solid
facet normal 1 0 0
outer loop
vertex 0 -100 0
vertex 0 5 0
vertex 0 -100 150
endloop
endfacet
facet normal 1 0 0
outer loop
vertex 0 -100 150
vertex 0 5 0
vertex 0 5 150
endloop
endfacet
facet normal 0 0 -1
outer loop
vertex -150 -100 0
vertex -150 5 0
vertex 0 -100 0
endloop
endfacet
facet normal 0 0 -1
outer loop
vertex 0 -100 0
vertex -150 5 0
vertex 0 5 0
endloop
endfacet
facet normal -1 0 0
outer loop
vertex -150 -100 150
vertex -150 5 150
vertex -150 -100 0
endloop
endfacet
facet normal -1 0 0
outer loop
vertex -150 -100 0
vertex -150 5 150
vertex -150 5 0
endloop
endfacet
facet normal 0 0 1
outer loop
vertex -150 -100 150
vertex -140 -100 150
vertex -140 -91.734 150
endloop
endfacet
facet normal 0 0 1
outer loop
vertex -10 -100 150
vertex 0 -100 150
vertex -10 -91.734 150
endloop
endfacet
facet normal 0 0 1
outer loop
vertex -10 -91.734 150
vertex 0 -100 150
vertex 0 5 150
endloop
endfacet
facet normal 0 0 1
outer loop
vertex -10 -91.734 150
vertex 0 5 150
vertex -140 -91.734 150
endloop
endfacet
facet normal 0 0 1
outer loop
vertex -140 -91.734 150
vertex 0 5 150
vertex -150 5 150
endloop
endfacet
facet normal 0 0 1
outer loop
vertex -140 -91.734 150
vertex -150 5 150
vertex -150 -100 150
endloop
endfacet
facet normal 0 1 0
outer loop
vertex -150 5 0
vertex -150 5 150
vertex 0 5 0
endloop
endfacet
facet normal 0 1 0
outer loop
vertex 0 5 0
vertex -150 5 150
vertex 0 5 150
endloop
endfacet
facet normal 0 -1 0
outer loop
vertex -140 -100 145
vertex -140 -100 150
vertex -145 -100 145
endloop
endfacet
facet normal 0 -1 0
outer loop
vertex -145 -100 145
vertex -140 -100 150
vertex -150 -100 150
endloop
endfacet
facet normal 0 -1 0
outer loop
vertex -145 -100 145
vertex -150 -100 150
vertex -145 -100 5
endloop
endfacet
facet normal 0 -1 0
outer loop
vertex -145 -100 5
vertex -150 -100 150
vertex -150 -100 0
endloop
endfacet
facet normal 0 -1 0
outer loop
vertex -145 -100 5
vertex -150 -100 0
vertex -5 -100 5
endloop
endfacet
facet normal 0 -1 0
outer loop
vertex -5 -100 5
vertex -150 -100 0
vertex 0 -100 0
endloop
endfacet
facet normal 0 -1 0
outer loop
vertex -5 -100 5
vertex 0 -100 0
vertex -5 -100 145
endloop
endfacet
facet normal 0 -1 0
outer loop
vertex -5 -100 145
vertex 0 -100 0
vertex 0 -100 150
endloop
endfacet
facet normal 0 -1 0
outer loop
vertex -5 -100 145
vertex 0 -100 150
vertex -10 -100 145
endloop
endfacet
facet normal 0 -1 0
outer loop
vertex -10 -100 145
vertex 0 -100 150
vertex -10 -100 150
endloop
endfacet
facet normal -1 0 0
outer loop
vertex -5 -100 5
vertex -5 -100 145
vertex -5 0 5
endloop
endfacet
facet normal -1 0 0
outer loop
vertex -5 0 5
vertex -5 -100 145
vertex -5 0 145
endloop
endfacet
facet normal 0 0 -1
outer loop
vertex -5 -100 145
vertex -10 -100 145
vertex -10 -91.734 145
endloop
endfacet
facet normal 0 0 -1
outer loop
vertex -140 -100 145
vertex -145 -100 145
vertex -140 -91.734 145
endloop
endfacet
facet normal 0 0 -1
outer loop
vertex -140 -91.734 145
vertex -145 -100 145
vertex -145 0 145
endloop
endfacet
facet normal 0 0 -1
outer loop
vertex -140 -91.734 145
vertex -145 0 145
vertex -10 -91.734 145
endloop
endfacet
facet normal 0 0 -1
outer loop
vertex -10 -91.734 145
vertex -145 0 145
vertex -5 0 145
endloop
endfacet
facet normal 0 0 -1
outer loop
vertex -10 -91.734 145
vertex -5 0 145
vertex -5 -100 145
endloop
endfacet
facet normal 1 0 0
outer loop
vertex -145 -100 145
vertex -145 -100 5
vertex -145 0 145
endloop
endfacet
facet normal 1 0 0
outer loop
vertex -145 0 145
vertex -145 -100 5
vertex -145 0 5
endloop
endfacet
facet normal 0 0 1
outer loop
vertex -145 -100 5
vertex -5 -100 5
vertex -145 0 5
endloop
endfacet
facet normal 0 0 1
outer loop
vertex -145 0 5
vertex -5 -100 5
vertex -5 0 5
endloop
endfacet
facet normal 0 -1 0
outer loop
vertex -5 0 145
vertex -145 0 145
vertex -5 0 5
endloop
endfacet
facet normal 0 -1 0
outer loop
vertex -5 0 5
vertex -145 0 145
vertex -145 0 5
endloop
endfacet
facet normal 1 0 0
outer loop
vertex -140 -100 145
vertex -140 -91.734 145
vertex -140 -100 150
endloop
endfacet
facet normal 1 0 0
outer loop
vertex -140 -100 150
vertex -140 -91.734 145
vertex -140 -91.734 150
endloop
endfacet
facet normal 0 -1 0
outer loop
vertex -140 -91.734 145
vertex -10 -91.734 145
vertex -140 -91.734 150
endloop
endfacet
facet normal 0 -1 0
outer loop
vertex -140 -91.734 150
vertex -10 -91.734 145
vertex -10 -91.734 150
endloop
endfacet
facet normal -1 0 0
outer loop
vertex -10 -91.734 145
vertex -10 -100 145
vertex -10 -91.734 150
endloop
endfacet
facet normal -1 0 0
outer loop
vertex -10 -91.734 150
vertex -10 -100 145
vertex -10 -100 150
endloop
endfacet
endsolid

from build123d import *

# Parameters (mm, degrees)
SKETCH_1_W          = 150
SKETCH_1_H          = 150
EXTRUDE_2_DEPTH     = 5
SKETCH_1_3_W        = 150
SKETCH_1_3_H        = 150
SKETCH_1_3_W_2      = 140
SKETCH_1_3_H_2      = 140
EXTRUDE_3_DEPTH     = 100
SKETCH_3_W          = 130
SKETCH_3_H          = 8.266043605
CUT_EXTRUDE_1_DEPTH = 5


with BuildPart() as part:
    # 草图1 → 凸台-拉伸2 (new body)
    with BuildSketch(Plane(origin=(0, 0, 0), x_dir=(1, 0, 0), z_dir=(0, 1, 0))):
        with Locations((-75, -75)):
            Rectangle(SKETCH_1_W, SKETCH_1_H)
    extrude(amount=EXTRUDE_2_DEPTH)

    # 草图1<3> → 凸台-拉伸3 (add)
    with BuildSketch(Plane(origin=(0, 0, 0), x_dir=(1, 0, 0), z_dir=(0, 1, 0))):
        with Locations((-75, -75)):
            Rectangle(SKETCH_1_3_W, SKETCH_1_3_H)
        with Locations((-75, -75)):
            Rectangle(SKETCH_1_3_W_2, SKETCH_1_3_H_2, mode=Mode.SUBTRACT)
    extrude(amount=-EXTRUDE_3_DEPTH)

    # 草图3 → 切除-拉伸1 (cut)
    with BuildSketch(Plane.XY.offset(150)):
        with Locations((-75, -95.866978198)):
            Rectangle(SKETCH_3_W, SKETCH_3_H)
    extrude(amount=-CUT_EXTRUDE_1_DEPTH, mode=Mode.SUBTRACT)


solid = part.part
